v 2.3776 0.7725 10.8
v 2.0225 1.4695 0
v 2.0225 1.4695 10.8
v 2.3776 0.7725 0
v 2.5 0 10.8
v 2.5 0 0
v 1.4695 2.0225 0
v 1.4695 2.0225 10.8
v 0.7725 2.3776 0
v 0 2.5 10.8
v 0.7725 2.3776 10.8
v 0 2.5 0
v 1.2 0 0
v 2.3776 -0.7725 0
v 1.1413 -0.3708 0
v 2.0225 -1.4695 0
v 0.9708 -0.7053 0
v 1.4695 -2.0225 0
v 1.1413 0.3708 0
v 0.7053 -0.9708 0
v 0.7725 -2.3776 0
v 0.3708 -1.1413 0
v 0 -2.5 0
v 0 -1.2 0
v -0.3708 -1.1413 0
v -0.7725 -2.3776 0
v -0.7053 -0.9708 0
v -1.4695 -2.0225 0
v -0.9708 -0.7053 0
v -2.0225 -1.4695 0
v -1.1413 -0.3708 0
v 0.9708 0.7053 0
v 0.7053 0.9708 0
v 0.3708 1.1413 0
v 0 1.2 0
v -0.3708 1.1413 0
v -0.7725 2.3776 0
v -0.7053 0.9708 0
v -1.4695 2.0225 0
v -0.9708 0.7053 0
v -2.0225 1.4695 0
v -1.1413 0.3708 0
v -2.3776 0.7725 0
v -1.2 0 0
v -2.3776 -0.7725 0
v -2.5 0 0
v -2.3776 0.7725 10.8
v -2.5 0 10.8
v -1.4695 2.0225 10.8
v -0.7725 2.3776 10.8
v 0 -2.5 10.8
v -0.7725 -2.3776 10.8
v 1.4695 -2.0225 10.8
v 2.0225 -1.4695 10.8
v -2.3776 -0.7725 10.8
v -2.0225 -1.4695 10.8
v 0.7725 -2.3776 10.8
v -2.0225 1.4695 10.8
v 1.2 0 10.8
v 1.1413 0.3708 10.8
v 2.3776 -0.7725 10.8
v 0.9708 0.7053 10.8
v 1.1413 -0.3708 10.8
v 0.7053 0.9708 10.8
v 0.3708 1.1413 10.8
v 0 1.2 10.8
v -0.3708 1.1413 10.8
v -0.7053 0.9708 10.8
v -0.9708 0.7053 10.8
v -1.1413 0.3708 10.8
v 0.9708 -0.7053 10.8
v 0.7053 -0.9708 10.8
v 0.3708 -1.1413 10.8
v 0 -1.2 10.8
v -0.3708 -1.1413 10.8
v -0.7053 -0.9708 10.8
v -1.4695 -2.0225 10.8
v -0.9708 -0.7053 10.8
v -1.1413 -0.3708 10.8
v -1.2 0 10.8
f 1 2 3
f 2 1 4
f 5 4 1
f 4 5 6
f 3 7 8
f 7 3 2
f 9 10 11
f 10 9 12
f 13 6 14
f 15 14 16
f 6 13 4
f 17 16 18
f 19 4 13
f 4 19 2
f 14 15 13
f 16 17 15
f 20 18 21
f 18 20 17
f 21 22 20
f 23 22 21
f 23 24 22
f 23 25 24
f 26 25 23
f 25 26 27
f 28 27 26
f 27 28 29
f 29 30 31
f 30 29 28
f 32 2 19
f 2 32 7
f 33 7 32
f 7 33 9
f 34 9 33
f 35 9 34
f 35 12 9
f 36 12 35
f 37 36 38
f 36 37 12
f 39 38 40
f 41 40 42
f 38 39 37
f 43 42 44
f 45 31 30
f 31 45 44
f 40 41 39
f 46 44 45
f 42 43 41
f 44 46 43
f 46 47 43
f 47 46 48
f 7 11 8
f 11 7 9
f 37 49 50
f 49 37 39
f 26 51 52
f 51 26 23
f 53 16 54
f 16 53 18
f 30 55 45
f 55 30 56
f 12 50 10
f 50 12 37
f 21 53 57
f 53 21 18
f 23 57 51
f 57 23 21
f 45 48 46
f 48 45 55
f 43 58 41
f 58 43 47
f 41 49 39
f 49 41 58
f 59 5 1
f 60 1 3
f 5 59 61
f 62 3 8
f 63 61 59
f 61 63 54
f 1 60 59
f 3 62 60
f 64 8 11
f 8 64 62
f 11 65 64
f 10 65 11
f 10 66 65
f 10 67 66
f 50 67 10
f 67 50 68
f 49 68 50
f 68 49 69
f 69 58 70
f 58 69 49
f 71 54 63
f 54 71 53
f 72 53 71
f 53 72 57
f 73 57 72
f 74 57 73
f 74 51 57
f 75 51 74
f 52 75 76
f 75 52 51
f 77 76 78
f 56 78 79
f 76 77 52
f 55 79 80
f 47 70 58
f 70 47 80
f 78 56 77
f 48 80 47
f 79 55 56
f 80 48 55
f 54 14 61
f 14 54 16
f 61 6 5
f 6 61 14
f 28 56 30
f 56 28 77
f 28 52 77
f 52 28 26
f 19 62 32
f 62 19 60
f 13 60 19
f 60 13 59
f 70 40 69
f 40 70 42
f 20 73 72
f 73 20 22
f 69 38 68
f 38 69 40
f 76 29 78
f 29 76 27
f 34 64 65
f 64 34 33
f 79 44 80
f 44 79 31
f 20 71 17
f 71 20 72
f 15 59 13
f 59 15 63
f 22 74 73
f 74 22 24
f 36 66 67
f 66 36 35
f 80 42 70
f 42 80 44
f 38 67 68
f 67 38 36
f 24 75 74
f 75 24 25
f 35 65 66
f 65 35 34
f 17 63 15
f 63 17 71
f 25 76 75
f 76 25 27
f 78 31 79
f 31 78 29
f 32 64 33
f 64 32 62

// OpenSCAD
/*
 * SPDX-FileCopyrightText: 2021-2022 Rafael G. Martins <rafael@rafaelmartins.eng.br>
 * SPDX-License-Identifier: CERN-OHL-S-2.0
 */

// must print 4 of this

difference() {
    cylinder(h=10.8, d=5, $fn=20);
    cylinder(h=10.8, d=2.4, $fn=20);
}
